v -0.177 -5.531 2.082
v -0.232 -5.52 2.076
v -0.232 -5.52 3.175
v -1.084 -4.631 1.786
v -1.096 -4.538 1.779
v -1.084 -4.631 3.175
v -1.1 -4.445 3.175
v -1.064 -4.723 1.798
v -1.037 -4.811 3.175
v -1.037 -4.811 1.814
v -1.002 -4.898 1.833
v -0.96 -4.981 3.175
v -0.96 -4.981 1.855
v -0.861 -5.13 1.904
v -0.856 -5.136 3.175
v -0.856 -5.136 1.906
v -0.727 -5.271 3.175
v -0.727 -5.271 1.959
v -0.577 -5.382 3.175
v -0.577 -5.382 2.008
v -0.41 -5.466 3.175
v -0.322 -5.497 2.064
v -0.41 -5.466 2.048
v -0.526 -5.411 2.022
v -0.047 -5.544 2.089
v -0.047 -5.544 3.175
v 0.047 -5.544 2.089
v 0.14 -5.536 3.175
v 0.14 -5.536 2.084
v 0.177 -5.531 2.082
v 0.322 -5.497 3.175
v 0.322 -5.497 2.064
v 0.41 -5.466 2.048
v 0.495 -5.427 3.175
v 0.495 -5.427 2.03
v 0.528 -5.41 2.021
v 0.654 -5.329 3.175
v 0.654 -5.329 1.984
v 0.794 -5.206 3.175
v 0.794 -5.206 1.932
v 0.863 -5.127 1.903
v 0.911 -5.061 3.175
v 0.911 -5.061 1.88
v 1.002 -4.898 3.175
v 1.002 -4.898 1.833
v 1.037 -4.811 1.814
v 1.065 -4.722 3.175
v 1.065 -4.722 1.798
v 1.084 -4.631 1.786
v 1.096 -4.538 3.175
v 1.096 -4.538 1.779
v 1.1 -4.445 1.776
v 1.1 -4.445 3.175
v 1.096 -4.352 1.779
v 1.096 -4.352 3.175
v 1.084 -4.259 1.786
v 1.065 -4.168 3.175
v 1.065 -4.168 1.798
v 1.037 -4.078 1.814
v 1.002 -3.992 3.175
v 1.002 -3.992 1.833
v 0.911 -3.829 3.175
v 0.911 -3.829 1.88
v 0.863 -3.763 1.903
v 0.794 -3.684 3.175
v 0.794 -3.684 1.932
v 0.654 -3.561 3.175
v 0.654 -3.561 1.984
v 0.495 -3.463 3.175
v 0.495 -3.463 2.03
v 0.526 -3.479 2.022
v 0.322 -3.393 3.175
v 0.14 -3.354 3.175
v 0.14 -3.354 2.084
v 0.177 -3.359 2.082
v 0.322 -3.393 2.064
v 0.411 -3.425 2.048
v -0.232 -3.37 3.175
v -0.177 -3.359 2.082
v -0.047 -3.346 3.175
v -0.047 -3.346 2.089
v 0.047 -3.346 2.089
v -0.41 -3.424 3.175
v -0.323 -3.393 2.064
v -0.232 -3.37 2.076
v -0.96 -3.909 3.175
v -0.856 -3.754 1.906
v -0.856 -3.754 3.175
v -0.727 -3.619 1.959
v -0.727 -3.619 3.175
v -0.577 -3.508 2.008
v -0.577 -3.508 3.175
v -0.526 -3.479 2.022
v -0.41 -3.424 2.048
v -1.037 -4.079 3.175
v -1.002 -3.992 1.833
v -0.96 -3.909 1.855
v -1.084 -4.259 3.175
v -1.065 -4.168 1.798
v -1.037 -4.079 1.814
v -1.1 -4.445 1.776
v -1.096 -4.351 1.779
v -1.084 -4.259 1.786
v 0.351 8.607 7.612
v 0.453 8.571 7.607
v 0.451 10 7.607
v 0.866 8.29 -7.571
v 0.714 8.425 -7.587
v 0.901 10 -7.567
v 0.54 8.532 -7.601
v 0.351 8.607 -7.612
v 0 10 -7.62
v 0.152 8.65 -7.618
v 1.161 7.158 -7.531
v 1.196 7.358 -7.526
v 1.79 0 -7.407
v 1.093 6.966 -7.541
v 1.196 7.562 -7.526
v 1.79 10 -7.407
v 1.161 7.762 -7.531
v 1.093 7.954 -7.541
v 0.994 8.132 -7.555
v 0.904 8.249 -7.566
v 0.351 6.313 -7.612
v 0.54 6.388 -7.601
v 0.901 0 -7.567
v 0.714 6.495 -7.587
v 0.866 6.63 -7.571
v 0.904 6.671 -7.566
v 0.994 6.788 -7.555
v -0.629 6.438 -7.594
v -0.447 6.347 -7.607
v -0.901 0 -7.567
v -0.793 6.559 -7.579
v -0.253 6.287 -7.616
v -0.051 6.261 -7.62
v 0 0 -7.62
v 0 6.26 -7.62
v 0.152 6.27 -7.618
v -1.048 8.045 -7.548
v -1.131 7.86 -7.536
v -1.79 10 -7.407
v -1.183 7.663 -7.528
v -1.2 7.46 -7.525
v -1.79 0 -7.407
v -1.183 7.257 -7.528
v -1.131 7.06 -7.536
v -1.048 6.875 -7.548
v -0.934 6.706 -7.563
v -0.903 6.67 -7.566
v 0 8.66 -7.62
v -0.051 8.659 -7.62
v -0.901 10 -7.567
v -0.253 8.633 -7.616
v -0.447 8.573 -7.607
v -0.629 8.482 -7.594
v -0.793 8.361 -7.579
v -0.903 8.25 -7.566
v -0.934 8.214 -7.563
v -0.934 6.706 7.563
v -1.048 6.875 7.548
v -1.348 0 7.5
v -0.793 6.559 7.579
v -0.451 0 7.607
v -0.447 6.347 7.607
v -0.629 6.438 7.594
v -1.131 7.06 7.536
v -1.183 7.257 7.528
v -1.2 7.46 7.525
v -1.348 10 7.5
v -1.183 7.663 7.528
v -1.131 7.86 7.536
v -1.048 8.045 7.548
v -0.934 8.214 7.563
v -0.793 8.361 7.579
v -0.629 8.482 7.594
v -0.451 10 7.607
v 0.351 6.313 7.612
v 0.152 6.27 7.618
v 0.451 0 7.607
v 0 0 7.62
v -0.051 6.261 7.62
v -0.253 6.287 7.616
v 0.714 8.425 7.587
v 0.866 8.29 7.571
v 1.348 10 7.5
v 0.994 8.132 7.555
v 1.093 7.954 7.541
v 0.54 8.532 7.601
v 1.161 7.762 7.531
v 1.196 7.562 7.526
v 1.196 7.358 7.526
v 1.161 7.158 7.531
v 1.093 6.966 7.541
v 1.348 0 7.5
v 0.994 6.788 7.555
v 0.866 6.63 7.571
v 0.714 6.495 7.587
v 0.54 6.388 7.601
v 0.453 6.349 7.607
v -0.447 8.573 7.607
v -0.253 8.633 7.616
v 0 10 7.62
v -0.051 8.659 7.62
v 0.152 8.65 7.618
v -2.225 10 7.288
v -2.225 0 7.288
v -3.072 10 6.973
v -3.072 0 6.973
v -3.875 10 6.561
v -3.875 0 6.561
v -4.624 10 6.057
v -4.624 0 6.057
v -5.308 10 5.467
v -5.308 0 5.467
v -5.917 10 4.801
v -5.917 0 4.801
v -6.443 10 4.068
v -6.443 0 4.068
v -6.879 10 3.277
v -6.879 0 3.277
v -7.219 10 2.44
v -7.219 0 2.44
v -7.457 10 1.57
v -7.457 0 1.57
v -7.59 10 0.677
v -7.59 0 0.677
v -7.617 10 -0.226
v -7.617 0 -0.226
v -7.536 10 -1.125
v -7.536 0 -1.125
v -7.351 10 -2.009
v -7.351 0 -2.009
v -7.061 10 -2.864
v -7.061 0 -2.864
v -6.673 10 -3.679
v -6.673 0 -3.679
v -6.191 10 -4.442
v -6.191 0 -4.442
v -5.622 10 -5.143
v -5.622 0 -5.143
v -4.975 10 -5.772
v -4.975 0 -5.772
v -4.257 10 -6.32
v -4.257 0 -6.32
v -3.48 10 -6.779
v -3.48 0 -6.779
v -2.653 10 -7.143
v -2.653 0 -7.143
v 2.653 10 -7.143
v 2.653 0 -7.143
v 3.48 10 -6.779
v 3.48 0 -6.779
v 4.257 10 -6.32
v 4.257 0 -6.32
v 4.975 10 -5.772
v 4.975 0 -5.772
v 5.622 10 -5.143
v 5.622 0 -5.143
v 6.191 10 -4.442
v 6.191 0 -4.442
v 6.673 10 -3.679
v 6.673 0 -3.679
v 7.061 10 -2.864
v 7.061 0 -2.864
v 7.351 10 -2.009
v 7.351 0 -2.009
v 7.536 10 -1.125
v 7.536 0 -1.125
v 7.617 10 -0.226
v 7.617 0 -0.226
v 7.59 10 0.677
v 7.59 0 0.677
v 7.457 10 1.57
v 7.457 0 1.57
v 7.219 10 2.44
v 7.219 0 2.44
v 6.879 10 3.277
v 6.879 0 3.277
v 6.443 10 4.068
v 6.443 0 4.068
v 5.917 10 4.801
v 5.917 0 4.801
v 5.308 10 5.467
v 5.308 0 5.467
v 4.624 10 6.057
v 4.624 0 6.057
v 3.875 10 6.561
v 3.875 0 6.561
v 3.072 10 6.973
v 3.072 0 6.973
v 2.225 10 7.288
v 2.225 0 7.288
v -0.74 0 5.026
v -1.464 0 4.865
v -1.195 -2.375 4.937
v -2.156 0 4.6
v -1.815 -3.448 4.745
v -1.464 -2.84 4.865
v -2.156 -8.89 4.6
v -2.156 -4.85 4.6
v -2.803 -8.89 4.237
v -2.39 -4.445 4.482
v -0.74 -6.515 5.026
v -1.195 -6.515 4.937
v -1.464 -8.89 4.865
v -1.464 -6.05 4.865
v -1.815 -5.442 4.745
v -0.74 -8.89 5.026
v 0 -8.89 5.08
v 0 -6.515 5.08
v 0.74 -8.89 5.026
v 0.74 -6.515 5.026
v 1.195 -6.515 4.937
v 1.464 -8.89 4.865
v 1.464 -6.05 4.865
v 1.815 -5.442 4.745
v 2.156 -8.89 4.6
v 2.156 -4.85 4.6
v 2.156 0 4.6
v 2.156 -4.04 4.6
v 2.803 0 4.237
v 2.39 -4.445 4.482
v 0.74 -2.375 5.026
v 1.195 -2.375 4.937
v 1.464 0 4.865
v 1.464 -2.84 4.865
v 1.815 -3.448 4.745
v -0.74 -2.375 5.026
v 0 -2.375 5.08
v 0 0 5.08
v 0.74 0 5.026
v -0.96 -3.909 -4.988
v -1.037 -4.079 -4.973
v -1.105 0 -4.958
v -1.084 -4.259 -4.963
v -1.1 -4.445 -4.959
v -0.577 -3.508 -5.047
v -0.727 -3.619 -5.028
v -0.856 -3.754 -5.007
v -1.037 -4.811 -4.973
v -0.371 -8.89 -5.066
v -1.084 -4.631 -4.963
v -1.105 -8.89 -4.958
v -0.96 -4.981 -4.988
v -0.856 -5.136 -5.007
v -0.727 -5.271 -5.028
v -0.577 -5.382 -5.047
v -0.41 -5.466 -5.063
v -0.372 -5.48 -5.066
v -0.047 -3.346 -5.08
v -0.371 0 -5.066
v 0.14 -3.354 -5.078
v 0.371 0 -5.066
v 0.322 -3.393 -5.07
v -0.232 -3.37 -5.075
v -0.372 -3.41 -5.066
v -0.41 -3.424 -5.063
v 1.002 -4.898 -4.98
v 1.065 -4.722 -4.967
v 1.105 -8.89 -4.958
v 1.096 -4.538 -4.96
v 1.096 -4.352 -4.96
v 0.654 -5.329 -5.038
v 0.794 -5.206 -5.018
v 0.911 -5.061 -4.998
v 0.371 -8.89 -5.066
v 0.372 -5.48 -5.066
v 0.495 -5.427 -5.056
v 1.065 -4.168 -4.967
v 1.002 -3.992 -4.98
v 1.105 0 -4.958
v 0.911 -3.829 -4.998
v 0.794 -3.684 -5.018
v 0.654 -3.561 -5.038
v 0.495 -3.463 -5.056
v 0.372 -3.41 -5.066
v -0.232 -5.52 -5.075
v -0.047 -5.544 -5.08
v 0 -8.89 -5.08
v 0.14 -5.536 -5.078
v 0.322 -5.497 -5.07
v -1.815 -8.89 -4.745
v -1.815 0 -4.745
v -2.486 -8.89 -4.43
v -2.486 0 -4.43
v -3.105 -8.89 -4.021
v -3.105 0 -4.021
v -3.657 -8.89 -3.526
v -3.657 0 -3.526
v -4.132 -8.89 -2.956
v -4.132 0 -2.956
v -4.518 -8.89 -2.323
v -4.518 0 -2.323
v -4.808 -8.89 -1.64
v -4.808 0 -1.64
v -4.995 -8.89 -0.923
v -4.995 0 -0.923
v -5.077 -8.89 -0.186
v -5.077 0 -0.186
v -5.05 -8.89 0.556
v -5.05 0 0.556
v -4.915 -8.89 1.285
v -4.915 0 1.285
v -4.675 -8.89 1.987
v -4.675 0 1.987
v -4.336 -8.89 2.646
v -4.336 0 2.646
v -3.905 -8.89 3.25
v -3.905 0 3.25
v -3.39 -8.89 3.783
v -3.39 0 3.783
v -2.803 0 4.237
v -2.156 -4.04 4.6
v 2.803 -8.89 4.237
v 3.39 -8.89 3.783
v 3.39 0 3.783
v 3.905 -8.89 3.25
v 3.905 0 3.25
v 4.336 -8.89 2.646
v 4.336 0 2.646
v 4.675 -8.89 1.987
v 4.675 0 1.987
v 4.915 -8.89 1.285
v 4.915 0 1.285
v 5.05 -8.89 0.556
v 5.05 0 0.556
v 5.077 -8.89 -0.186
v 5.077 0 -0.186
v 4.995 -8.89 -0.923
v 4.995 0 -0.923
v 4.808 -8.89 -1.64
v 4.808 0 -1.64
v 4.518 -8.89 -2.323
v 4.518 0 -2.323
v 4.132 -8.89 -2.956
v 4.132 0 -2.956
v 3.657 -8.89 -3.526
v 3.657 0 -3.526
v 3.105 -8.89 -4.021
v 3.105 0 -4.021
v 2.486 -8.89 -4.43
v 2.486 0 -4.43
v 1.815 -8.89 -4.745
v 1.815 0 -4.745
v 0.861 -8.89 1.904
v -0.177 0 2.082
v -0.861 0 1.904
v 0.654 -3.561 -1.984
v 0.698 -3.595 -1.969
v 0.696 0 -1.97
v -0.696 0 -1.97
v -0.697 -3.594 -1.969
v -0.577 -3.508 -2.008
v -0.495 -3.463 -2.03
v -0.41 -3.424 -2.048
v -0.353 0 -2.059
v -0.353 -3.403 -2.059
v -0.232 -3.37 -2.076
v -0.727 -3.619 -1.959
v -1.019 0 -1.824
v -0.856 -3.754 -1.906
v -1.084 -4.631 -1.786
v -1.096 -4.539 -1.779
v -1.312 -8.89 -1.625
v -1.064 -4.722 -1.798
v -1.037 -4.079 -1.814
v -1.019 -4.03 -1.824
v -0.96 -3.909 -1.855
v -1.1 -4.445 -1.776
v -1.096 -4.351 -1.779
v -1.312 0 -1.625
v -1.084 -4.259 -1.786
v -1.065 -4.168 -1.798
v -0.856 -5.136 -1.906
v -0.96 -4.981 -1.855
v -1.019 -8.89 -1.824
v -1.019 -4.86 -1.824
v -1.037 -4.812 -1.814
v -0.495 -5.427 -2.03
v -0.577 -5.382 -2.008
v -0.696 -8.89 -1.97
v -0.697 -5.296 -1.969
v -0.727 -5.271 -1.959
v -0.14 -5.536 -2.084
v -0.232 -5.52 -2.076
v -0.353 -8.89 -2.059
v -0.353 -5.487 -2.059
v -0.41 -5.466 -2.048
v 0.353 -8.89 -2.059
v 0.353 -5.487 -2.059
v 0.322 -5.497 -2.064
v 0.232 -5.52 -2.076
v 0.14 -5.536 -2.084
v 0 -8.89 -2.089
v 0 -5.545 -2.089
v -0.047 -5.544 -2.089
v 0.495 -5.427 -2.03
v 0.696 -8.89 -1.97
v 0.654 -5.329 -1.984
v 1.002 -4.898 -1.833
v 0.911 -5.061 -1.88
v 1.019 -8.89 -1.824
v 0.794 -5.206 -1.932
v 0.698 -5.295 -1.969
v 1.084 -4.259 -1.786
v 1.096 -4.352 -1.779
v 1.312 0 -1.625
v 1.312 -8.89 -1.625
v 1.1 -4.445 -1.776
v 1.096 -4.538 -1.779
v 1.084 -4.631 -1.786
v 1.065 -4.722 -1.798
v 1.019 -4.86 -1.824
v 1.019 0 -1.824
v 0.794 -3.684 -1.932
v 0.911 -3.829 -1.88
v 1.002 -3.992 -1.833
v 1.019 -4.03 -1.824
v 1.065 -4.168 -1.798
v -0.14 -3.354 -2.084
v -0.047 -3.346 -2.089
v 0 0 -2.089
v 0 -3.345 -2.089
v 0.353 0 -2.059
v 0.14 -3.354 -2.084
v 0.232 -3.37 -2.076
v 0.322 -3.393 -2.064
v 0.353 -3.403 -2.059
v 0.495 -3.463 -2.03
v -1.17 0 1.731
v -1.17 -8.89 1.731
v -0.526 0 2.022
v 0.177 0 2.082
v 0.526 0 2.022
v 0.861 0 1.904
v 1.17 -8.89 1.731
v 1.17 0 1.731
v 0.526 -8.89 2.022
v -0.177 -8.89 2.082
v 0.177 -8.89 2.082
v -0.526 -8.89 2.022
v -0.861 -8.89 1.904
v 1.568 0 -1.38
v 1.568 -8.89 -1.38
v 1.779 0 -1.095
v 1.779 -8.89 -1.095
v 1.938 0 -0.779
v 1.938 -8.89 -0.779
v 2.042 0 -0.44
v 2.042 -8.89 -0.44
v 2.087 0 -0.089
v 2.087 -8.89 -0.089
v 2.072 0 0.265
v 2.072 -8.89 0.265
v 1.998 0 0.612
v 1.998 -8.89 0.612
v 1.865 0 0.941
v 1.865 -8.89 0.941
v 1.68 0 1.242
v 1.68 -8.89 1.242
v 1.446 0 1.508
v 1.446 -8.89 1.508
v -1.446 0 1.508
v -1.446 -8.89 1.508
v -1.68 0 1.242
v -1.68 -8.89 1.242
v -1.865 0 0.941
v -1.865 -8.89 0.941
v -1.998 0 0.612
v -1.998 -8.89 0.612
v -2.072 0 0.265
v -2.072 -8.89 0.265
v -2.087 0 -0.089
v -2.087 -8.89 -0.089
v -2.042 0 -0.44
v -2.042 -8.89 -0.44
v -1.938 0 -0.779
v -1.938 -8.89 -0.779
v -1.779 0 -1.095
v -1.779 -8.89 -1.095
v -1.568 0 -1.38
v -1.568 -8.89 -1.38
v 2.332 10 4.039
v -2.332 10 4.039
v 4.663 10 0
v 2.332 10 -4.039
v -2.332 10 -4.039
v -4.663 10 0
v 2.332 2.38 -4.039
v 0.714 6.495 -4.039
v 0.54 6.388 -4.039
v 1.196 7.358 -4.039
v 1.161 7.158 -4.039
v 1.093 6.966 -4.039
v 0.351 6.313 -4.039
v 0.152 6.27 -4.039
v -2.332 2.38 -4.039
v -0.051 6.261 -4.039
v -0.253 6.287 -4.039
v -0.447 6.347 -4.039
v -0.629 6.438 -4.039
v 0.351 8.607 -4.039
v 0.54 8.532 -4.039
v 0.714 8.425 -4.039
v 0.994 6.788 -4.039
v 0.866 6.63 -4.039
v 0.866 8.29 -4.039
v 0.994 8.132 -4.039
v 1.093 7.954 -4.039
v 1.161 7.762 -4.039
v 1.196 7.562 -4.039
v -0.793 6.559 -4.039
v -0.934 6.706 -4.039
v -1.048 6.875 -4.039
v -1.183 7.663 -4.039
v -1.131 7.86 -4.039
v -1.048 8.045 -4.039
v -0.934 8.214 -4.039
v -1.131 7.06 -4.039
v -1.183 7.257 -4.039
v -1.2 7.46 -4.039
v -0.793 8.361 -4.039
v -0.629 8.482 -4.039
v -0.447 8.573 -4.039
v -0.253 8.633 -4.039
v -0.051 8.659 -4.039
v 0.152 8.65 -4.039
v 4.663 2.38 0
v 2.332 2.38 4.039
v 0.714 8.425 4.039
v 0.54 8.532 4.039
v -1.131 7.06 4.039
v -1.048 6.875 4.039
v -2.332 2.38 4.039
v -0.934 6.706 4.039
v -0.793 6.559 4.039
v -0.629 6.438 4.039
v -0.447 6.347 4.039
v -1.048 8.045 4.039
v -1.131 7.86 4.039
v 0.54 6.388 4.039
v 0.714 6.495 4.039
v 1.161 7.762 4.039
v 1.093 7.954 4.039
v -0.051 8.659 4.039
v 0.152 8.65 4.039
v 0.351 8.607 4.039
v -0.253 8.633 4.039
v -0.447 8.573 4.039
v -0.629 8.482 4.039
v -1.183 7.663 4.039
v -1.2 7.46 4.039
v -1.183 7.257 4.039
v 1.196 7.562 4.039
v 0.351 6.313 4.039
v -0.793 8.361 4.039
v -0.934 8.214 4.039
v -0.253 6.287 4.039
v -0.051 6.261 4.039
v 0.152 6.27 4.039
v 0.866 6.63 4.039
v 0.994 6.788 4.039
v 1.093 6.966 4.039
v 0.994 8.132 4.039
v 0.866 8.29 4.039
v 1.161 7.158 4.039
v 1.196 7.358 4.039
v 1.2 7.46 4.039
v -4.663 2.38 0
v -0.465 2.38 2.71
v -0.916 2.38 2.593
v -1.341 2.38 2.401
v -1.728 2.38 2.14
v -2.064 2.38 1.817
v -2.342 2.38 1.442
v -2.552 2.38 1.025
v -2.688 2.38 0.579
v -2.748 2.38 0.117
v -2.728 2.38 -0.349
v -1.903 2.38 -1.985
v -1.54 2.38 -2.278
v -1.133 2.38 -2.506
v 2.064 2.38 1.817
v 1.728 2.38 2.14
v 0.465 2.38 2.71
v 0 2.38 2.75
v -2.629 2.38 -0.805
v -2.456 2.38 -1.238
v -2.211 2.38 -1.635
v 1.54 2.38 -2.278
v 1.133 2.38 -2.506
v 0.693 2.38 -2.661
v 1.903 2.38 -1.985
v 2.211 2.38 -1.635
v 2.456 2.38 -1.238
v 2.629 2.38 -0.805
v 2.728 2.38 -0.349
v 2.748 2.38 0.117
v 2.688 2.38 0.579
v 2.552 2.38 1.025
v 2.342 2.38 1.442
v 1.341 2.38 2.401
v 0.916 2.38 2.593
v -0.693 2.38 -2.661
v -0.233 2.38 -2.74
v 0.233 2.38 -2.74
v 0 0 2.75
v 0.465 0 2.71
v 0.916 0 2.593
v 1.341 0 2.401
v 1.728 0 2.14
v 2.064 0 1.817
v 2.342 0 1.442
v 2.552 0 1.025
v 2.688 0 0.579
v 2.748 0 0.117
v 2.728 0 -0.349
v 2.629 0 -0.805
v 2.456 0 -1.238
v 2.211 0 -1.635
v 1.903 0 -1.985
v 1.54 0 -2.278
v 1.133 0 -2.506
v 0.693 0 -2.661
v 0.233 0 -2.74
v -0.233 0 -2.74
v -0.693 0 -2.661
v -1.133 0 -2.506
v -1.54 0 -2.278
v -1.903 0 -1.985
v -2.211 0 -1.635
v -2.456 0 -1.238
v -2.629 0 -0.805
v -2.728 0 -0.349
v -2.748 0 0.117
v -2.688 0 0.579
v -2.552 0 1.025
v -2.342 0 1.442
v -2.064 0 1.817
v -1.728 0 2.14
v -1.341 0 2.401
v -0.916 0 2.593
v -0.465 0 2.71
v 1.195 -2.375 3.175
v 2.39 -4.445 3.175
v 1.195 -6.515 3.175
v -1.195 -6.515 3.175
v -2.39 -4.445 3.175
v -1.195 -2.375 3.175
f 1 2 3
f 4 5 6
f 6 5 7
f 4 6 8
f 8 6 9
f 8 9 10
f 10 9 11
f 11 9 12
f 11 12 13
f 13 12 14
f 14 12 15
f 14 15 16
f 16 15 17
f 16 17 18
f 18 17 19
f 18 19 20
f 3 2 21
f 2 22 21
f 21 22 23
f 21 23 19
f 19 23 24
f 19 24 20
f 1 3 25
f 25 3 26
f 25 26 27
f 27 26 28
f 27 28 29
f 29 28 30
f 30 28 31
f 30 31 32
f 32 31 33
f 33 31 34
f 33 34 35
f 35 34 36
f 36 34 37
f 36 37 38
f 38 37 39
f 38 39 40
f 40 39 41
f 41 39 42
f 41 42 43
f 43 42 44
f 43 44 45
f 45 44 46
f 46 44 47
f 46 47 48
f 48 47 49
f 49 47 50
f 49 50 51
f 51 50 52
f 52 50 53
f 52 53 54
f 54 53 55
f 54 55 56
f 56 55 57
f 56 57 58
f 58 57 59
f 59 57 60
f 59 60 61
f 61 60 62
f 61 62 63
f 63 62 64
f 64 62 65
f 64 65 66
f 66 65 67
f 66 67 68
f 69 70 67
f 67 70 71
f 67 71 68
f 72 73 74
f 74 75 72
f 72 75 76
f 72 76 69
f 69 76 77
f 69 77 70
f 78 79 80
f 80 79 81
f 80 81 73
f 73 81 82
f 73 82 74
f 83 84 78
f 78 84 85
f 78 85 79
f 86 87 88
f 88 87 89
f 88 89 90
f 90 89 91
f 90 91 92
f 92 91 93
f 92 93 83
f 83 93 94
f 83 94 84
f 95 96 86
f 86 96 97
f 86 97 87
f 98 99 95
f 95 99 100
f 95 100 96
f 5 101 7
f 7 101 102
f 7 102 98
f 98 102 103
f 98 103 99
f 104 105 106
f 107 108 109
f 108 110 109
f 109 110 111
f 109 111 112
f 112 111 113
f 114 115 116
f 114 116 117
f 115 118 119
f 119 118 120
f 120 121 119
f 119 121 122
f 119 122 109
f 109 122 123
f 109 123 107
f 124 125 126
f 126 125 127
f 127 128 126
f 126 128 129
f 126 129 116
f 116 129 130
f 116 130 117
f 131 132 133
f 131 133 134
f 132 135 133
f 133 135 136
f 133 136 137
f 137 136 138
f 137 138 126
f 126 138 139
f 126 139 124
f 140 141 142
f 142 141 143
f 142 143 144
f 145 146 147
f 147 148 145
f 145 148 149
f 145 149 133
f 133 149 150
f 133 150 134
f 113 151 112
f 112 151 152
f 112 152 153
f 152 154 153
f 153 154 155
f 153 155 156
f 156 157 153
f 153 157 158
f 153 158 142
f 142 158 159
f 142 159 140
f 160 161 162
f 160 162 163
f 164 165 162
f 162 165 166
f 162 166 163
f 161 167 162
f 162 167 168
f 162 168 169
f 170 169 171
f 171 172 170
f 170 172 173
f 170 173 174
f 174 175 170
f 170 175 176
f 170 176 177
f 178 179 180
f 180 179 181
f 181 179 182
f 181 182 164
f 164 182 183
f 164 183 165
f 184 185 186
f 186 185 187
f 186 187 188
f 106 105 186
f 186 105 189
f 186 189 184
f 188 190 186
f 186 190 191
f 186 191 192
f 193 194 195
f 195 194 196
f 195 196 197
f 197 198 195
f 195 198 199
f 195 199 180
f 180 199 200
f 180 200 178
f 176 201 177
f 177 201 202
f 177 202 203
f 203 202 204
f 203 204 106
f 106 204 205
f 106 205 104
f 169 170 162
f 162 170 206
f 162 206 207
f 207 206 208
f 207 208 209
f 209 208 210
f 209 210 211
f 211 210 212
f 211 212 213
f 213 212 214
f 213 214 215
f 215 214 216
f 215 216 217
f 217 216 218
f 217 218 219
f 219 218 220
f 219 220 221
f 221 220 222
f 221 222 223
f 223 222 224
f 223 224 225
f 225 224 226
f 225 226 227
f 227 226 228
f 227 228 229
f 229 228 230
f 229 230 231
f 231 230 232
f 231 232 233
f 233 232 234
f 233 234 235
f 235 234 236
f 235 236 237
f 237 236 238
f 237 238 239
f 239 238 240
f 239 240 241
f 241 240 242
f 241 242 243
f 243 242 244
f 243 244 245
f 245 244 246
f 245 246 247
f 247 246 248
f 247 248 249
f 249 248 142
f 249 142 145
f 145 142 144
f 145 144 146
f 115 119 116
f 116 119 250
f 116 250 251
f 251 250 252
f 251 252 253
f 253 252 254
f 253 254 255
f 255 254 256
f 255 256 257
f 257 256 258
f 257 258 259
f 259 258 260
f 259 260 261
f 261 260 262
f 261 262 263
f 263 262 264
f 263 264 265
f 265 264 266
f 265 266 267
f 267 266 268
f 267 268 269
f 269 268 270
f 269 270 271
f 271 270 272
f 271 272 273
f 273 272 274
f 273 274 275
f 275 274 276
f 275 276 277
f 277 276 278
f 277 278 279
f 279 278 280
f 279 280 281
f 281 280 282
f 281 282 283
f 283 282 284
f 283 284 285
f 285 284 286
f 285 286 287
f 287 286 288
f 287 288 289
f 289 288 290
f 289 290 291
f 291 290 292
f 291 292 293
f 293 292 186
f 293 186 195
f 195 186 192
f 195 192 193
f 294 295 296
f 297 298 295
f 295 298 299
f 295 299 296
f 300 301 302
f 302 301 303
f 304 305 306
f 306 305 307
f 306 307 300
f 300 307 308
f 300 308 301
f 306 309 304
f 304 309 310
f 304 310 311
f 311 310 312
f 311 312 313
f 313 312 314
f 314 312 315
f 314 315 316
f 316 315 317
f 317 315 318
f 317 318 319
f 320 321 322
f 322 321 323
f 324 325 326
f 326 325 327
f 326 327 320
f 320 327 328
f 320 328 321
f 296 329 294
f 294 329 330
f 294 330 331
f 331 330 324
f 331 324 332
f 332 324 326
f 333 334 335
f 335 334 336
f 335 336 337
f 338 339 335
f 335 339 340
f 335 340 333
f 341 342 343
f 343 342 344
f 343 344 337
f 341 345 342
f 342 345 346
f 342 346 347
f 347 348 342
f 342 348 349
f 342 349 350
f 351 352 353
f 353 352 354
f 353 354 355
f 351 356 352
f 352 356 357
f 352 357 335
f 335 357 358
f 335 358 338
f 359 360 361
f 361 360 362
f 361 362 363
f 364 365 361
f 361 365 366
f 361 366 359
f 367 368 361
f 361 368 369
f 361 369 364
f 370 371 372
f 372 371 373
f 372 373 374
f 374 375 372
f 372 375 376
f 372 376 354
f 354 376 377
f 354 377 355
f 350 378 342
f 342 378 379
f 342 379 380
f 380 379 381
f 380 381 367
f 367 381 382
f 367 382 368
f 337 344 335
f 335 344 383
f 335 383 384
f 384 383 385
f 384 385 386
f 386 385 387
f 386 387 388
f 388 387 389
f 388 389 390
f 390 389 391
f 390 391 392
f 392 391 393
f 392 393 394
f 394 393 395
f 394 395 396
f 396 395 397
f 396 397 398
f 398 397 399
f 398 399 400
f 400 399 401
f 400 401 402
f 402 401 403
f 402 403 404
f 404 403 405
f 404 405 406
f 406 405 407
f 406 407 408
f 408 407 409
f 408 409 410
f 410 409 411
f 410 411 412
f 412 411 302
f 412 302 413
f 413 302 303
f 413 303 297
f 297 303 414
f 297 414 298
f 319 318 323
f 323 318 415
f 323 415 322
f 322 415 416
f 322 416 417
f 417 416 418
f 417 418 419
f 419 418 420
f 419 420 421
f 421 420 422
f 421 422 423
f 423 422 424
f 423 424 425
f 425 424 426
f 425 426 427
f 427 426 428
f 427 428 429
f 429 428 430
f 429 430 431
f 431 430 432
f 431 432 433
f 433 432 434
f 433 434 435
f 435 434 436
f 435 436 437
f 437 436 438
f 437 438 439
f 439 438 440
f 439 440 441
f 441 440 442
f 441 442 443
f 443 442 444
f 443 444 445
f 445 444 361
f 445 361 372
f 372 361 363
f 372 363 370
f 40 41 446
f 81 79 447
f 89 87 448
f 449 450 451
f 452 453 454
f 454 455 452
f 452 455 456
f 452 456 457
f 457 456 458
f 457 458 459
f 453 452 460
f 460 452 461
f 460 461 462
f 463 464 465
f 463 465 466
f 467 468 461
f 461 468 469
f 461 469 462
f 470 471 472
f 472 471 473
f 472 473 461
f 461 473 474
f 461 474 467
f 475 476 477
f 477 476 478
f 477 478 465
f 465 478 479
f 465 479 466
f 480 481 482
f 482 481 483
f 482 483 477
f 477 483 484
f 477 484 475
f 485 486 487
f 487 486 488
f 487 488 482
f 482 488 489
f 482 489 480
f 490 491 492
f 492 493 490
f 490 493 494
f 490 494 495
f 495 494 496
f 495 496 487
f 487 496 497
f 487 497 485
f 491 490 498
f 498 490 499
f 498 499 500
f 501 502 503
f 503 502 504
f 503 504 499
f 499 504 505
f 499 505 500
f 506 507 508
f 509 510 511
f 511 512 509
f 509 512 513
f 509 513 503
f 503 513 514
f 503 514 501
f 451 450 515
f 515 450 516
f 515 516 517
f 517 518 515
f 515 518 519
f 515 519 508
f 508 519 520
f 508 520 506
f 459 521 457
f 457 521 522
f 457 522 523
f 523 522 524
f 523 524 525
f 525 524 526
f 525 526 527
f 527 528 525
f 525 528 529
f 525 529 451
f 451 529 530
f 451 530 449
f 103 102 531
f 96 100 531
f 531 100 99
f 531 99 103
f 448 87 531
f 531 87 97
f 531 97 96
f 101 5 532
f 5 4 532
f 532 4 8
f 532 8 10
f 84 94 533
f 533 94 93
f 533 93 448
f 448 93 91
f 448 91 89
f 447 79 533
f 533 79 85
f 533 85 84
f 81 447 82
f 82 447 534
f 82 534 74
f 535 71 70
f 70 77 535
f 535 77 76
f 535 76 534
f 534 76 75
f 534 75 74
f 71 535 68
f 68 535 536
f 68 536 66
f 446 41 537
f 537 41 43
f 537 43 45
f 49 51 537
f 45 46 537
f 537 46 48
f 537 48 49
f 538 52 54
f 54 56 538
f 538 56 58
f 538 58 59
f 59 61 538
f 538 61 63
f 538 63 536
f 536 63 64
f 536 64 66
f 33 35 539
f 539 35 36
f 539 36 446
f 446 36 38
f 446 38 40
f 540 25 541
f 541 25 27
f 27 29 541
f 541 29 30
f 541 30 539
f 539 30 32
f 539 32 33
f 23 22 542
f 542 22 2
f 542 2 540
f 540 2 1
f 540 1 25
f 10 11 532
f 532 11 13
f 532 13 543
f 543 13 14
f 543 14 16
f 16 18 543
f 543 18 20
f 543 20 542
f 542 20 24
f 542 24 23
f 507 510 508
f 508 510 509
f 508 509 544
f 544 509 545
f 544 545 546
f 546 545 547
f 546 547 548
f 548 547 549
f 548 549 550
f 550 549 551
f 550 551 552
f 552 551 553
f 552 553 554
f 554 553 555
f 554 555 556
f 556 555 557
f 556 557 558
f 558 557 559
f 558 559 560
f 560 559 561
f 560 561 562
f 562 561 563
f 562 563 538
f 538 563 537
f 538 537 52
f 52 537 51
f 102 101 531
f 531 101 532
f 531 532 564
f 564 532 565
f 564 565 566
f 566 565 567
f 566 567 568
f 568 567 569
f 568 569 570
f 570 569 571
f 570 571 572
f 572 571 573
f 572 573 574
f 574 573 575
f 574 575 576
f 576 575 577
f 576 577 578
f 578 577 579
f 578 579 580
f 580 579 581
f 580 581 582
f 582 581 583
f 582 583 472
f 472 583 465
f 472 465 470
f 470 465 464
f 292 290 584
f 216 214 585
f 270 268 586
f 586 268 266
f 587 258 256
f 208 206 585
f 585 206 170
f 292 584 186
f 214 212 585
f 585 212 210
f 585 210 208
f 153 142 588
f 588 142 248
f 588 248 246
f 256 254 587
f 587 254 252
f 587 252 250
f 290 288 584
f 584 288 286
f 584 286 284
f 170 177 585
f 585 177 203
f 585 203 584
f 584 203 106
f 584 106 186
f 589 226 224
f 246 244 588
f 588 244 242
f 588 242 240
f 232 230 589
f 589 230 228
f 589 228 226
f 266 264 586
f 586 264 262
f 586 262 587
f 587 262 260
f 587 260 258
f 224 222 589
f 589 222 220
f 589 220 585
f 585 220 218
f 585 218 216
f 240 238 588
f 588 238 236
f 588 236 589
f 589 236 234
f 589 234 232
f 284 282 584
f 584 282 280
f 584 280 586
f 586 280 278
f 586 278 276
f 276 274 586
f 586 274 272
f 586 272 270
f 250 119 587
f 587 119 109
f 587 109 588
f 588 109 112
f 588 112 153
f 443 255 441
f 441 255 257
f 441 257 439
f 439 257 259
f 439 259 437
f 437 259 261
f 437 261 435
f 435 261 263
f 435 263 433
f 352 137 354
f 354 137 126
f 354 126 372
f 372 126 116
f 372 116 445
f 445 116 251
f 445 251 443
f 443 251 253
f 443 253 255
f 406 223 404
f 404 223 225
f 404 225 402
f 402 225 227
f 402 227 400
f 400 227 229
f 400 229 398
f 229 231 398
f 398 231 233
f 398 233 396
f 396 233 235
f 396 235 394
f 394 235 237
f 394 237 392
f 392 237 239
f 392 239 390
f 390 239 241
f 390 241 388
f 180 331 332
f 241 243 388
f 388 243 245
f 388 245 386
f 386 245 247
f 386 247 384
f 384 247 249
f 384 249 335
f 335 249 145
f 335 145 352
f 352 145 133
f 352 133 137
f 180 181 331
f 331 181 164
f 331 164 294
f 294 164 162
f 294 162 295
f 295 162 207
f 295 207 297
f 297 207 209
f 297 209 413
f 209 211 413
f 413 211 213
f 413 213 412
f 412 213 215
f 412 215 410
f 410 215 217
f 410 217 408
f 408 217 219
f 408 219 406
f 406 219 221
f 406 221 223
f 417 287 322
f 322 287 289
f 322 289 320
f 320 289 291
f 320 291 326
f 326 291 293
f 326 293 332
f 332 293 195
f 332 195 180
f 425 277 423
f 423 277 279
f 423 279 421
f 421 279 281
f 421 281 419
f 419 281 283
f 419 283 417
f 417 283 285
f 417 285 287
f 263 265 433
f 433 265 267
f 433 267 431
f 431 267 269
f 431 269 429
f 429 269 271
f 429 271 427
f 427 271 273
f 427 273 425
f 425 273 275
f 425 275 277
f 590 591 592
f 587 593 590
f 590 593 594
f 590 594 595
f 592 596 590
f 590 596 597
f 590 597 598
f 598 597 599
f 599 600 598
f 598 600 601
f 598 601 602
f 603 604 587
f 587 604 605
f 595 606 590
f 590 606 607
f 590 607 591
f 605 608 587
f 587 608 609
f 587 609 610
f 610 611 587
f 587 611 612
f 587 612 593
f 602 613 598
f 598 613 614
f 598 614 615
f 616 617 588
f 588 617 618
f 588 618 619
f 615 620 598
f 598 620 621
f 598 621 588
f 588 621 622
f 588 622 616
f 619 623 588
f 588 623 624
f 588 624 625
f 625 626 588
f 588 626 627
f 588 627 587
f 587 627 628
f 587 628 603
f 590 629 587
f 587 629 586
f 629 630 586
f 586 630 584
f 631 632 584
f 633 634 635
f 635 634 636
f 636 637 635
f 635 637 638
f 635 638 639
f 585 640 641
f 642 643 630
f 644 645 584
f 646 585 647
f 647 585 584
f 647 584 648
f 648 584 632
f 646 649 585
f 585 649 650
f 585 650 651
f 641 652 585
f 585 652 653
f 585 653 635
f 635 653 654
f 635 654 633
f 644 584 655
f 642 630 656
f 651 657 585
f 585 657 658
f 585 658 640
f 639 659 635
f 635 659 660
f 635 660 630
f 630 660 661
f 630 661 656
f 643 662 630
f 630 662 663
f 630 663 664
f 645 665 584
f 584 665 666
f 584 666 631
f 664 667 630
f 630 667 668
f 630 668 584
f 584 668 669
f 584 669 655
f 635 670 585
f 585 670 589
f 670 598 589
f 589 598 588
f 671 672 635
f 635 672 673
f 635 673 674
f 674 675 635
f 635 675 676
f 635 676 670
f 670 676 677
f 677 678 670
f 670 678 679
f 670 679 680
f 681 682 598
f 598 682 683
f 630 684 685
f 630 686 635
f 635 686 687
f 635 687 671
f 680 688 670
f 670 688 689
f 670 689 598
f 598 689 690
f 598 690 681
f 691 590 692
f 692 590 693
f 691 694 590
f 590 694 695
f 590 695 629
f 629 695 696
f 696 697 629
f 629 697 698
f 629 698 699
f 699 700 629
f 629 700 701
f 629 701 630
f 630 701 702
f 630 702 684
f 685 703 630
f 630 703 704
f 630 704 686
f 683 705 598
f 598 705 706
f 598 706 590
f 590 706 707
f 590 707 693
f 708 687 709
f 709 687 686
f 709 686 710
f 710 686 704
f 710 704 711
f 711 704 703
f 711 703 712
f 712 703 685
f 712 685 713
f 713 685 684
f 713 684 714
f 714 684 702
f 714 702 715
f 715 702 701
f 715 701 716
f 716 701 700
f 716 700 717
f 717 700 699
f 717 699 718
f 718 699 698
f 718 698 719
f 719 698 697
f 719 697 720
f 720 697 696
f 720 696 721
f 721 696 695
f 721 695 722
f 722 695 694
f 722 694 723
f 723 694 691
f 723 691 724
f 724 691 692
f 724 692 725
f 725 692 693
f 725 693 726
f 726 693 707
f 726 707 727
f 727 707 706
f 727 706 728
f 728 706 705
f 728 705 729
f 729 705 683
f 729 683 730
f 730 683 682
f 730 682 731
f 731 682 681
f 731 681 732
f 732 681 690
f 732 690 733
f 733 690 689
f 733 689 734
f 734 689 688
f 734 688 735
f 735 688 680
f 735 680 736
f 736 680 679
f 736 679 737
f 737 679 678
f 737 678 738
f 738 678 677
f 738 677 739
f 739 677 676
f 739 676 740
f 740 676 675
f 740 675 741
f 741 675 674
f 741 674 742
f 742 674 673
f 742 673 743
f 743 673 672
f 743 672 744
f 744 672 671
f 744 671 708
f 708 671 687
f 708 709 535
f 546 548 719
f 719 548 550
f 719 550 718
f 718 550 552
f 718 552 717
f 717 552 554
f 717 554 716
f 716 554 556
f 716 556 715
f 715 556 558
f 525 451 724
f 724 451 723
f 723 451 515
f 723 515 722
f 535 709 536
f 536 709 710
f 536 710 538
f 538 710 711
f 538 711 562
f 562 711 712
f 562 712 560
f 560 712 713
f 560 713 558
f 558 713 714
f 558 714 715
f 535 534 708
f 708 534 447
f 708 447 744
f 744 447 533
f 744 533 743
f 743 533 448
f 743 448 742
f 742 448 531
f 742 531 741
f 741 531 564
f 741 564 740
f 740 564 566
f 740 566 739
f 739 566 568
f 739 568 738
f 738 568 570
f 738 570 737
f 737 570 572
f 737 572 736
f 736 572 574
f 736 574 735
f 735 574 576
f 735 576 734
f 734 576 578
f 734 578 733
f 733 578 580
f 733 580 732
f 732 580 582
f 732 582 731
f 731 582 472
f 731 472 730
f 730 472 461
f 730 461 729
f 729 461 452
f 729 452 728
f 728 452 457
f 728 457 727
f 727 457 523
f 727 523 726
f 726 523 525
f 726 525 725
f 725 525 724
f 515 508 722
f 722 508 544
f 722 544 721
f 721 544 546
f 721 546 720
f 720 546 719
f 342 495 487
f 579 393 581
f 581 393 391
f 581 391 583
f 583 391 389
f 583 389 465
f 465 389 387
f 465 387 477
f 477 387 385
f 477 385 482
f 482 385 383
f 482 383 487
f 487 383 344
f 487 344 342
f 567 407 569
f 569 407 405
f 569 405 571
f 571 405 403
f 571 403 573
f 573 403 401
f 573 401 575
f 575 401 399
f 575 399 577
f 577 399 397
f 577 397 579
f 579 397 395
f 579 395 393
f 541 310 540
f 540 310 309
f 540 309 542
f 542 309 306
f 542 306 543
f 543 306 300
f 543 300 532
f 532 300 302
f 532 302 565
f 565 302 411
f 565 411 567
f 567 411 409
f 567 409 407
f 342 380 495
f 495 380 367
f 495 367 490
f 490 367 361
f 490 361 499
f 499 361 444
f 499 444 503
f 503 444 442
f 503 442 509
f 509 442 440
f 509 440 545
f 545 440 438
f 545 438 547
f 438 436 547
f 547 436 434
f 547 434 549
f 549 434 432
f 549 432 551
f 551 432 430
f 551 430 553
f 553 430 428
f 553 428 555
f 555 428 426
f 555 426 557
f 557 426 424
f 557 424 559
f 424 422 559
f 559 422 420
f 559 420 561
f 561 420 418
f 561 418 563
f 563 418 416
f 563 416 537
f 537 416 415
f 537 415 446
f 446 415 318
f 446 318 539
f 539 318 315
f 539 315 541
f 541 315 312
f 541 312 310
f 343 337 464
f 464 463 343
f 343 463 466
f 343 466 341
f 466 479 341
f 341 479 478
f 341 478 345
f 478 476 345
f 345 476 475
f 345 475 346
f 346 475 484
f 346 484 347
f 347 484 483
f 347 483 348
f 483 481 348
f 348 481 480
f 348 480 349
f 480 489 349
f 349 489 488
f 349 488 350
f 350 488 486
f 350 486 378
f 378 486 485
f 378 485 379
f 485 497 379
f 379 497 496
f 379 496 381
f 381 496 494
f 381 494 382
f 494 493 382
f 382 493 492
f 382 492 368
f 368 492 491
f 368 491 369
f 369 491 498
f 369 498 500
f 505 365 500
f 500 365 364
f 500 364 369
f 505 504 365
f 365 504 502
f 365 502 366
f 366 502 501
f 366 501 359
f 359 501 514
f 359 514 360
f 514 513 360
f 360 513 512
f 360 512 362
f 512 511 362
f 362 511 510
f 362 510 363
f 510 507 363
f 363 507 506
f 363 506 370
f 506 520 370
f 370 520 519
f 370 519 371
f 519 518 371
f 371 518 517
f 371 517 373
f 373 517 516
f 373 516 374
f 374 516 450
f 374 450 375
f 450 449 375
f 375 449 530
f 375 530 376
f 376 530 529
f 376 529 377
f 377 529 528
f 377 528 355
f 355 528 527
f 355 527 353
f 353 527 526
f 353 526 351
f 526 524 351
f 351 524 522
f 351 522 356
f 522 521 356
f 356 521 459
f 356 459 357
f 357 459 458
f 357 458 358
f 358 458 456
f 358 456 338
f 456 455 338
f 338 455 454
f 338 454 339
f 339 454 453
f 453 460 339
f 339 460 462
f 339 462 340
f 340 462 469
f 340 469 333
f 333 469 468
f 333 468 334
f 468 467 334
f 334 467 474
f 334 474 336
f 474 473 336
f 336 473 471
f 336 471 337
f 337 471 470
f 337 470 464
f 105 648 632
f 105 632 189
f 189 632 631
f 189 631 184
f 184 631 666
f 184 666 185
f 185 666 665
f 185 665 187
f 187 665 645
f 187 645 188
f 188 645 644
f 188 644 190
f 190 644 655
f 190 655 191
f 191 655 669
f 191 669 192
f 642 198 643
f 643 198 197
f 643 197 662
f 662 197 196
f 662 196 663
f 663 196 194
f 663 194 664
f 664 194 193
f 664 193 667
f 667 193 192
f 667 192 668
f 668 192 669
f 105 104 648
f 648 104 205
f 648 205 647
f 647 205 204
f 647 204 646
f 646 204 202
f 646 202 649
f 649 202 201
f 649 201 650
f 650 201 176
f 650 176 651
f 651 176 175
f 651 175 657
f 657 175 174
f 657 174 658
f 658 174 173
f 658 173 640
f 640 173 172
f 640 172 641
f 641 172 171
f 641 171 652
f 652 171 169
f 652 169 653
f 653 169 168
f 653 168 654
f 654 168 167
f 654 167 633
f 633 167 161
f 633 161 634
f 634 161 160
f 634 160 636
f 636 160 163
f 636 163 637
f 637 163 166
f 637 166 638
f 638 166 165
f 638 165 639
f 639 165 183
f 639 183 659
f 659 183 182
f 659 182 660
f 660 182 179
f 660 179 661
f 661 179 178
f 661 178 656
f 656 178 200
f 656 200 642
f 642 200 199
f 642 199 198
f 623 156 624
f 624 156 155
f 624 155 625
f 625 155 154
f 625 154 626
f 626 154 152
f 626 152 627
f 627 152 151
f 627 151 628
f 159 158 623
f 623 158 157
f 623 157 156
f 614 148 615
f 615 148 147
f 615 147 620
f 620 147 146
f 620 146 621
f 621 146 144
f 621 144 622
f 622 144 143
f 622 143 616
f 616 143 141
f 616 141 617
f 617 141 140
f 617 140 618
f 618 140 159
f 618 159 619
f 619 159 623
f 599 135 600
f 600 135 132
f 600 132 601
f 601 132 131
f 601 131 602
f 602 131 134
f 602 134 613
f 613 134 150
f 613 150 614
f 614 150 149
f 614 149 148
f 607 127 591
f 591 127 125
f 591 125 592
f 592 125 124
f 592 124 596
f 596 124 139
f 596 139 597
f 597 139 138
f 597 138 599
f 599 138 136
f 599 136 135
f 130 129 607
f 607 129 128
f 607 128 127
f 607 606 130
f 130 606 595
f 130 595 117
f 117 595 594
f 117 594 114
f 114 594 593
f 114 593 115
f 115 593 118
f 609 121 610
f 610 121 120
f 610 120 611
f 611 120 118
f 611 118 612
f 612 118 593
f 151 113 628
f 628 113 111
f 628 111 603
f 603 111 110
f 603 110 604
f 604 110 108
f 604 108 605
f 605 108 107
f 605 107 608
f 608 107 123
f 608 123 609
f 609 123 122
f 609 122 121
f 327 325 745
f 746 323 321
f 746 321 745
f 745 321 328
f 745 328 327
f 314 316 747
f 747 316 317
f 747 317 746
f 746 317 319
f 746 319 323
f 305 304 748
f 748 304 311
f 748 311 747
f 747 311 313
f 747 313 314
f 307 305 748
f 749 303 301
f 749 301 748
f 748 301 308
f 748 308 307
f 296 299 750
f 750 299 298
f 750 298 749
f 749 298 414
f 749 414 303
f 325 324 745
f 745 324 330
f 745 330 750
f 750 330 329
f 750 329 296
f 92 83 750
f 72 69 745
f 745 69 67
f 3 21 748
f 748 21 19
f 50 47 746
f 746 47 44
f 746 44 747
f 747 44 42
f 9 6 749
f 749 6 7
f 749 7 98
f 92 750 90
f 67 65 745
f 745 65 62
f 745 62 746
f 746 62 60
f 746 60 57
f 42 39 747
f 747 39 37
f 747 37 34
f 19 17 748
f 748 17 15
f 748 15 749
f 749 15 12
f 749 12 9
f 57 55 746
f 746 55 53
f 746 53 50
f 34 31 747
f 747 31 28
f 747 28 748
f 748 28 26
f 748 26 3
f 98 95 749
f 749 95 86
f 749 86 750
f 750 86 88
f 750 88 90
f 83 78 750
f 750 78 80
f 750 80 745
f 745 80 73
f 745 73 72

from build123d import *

# Parameters (mm, degrees)
SKETCH1_R               = 7.62
BOSS_EXTRUDE1_DEPTH     = 10
CUT_EXTRUDE1_DEPTH      = 7.62
SKETCH4_R               = 2.75
CUT_EXTRUDE2_DEPTH      = 9.5
SKETCH5_R               = 5.08
BOSS_EXTRUDE2_DEPTH     = 8.89
CUT_EXTRUDE3_REACH      = 20.89
SKETCH6_R               = 2.08915
SKETCH7_R               = 1.1
CUT_EXTRUDE4_DEPTH      = 8.89
CUT_EXTRUDE4_DEPTH_BACK = 8.89
SKETCH8_R               = 1.2
CUT_EXTRUDE5_DEPTH      = 8.89
CUT_EXTRUDE5_DEPTH_BACK = 8.89
CUT_EXTRUDE6_DEPTH      = 1.905


with BuildPart() as part:
    # Sketch1 → Boss-Extrude1 (new body)
    with BuildSketch(Plane(origin=(0, 0, 0), x_dir=(1, 0, 0), z_dir=(0, 1, 0))):
        Circle(SKETCH1_R)
    extrude(amount=BOSS_EXTRUDE1_DEPTH)

    # Sketch2 → Cut-Extrude1 (cut)
    with BuildSketch(Plane(origin=(0, 10, 0), x_dir=(1, 0, 0), z_dir=(0, 1, 0))):
        Polygon((-2.331686797, 4.0386), (-4.663373594, 0), (-2.331686797, -4.0386), (2.331686797, -4.0386), (4.663373594, 0), (2.331686797, 4.0386), align=None)
    extrude(amount=-CUT_EXTRUDE1_DEPTH, mode=Mode.SUBTRACT)

    # Sketch4 → Cut-Extrude2 (cut)
    with BuildSketch(Plane(origin=(0, 2.38, 0), x_dir=(1, 0, 0), z_dir=(0, 1, 0))):
        Circle(SKETCH4_R)
    extrude(amount=-CUT_EXTRUDE2_DEPTH, mode=Mode.SUBTRACT)

    # Sketch5 → Boss-Extrude2 (add)
    with BuildSketch(Plane(origin=(0, 0, 0), x_dir=(-1, 0, 0), z_dir=(0, -1, 0))):
        Circle(SKETCH5_R)
    extrude(amount=BOSS_EXTRUDE2_DEPTH)

    # Sketch6 → Cut-Extrude3 (cut, up to next)
    with BuildSketch(Plane(origin=(0, -8.89, 0), x_dir=(-1, 0, 0), z_dir=(0, -1, 0)), mode=Mode.PRIVATE) as cut_extrude3_sk1:
        Circle(SKETCH6_R)
    cut_extrude3_tool1 = extrude(cut_extrude3_sk1.sketch, amount=-CUT_EXTRUDE3_REACH, mode=Mode.PRIVATE) & part.part
    add(cut_extrude3_tool1.solids().sort_by_distance((0, -8.89, 0))[0], mode=Mode.SUBTRACT)

    # Sketch7 → Cut-Extrude4 (cut, two sides)
    with BuildSketch(Plane.XY) as cut_extrude4_sk:
        with Locations((0, -4.445)):
            Circle(SKETCH7_R)
    extrude(amount=CUT_EXTRUDE4_DEPTH, mode=Mode.SUBTRACT)
    extrude(cut_extrude4_sk.sketch, amount=-CUT_EXTRUDE4_DEPTH_BACK, mode=Mode.SUBTRACT)

    # Sketch8 → Cut-Extrude5 (cut, two sides)
    with BuildSketch(Plane.XY) as cut_extrude5_sk:
        with Locations((0, 7.46)):
            Circle(SKETCH8_R)
    extrude(amount=CUT_EXTRUDE5_DEPTH, mode=Mode.SUBTRACT)
    extrude(cut_extrude5_sk.sketch, amount=-CUT_EXTRUDE5_DEPTH_BACK, mode=Mode.SUBTRACT)

    # Sketch9 → Cut-Extrude6 (cut)
    with BuildSketch(Plane.XY.offset(5.08)):
        Polygon((1.195172792, -2.3749), (-1.195172792, -2.3749), (-2.390345584, -4.445), (-1.195172792, -6.5151), (1.195172792, -6.5151), (2.390345584, -4.445), align=None)
    extrude(amount=-CUT_EXTRUDE6_DEPTH, mode=Mode.SUBTRACT)


solid = part.part
